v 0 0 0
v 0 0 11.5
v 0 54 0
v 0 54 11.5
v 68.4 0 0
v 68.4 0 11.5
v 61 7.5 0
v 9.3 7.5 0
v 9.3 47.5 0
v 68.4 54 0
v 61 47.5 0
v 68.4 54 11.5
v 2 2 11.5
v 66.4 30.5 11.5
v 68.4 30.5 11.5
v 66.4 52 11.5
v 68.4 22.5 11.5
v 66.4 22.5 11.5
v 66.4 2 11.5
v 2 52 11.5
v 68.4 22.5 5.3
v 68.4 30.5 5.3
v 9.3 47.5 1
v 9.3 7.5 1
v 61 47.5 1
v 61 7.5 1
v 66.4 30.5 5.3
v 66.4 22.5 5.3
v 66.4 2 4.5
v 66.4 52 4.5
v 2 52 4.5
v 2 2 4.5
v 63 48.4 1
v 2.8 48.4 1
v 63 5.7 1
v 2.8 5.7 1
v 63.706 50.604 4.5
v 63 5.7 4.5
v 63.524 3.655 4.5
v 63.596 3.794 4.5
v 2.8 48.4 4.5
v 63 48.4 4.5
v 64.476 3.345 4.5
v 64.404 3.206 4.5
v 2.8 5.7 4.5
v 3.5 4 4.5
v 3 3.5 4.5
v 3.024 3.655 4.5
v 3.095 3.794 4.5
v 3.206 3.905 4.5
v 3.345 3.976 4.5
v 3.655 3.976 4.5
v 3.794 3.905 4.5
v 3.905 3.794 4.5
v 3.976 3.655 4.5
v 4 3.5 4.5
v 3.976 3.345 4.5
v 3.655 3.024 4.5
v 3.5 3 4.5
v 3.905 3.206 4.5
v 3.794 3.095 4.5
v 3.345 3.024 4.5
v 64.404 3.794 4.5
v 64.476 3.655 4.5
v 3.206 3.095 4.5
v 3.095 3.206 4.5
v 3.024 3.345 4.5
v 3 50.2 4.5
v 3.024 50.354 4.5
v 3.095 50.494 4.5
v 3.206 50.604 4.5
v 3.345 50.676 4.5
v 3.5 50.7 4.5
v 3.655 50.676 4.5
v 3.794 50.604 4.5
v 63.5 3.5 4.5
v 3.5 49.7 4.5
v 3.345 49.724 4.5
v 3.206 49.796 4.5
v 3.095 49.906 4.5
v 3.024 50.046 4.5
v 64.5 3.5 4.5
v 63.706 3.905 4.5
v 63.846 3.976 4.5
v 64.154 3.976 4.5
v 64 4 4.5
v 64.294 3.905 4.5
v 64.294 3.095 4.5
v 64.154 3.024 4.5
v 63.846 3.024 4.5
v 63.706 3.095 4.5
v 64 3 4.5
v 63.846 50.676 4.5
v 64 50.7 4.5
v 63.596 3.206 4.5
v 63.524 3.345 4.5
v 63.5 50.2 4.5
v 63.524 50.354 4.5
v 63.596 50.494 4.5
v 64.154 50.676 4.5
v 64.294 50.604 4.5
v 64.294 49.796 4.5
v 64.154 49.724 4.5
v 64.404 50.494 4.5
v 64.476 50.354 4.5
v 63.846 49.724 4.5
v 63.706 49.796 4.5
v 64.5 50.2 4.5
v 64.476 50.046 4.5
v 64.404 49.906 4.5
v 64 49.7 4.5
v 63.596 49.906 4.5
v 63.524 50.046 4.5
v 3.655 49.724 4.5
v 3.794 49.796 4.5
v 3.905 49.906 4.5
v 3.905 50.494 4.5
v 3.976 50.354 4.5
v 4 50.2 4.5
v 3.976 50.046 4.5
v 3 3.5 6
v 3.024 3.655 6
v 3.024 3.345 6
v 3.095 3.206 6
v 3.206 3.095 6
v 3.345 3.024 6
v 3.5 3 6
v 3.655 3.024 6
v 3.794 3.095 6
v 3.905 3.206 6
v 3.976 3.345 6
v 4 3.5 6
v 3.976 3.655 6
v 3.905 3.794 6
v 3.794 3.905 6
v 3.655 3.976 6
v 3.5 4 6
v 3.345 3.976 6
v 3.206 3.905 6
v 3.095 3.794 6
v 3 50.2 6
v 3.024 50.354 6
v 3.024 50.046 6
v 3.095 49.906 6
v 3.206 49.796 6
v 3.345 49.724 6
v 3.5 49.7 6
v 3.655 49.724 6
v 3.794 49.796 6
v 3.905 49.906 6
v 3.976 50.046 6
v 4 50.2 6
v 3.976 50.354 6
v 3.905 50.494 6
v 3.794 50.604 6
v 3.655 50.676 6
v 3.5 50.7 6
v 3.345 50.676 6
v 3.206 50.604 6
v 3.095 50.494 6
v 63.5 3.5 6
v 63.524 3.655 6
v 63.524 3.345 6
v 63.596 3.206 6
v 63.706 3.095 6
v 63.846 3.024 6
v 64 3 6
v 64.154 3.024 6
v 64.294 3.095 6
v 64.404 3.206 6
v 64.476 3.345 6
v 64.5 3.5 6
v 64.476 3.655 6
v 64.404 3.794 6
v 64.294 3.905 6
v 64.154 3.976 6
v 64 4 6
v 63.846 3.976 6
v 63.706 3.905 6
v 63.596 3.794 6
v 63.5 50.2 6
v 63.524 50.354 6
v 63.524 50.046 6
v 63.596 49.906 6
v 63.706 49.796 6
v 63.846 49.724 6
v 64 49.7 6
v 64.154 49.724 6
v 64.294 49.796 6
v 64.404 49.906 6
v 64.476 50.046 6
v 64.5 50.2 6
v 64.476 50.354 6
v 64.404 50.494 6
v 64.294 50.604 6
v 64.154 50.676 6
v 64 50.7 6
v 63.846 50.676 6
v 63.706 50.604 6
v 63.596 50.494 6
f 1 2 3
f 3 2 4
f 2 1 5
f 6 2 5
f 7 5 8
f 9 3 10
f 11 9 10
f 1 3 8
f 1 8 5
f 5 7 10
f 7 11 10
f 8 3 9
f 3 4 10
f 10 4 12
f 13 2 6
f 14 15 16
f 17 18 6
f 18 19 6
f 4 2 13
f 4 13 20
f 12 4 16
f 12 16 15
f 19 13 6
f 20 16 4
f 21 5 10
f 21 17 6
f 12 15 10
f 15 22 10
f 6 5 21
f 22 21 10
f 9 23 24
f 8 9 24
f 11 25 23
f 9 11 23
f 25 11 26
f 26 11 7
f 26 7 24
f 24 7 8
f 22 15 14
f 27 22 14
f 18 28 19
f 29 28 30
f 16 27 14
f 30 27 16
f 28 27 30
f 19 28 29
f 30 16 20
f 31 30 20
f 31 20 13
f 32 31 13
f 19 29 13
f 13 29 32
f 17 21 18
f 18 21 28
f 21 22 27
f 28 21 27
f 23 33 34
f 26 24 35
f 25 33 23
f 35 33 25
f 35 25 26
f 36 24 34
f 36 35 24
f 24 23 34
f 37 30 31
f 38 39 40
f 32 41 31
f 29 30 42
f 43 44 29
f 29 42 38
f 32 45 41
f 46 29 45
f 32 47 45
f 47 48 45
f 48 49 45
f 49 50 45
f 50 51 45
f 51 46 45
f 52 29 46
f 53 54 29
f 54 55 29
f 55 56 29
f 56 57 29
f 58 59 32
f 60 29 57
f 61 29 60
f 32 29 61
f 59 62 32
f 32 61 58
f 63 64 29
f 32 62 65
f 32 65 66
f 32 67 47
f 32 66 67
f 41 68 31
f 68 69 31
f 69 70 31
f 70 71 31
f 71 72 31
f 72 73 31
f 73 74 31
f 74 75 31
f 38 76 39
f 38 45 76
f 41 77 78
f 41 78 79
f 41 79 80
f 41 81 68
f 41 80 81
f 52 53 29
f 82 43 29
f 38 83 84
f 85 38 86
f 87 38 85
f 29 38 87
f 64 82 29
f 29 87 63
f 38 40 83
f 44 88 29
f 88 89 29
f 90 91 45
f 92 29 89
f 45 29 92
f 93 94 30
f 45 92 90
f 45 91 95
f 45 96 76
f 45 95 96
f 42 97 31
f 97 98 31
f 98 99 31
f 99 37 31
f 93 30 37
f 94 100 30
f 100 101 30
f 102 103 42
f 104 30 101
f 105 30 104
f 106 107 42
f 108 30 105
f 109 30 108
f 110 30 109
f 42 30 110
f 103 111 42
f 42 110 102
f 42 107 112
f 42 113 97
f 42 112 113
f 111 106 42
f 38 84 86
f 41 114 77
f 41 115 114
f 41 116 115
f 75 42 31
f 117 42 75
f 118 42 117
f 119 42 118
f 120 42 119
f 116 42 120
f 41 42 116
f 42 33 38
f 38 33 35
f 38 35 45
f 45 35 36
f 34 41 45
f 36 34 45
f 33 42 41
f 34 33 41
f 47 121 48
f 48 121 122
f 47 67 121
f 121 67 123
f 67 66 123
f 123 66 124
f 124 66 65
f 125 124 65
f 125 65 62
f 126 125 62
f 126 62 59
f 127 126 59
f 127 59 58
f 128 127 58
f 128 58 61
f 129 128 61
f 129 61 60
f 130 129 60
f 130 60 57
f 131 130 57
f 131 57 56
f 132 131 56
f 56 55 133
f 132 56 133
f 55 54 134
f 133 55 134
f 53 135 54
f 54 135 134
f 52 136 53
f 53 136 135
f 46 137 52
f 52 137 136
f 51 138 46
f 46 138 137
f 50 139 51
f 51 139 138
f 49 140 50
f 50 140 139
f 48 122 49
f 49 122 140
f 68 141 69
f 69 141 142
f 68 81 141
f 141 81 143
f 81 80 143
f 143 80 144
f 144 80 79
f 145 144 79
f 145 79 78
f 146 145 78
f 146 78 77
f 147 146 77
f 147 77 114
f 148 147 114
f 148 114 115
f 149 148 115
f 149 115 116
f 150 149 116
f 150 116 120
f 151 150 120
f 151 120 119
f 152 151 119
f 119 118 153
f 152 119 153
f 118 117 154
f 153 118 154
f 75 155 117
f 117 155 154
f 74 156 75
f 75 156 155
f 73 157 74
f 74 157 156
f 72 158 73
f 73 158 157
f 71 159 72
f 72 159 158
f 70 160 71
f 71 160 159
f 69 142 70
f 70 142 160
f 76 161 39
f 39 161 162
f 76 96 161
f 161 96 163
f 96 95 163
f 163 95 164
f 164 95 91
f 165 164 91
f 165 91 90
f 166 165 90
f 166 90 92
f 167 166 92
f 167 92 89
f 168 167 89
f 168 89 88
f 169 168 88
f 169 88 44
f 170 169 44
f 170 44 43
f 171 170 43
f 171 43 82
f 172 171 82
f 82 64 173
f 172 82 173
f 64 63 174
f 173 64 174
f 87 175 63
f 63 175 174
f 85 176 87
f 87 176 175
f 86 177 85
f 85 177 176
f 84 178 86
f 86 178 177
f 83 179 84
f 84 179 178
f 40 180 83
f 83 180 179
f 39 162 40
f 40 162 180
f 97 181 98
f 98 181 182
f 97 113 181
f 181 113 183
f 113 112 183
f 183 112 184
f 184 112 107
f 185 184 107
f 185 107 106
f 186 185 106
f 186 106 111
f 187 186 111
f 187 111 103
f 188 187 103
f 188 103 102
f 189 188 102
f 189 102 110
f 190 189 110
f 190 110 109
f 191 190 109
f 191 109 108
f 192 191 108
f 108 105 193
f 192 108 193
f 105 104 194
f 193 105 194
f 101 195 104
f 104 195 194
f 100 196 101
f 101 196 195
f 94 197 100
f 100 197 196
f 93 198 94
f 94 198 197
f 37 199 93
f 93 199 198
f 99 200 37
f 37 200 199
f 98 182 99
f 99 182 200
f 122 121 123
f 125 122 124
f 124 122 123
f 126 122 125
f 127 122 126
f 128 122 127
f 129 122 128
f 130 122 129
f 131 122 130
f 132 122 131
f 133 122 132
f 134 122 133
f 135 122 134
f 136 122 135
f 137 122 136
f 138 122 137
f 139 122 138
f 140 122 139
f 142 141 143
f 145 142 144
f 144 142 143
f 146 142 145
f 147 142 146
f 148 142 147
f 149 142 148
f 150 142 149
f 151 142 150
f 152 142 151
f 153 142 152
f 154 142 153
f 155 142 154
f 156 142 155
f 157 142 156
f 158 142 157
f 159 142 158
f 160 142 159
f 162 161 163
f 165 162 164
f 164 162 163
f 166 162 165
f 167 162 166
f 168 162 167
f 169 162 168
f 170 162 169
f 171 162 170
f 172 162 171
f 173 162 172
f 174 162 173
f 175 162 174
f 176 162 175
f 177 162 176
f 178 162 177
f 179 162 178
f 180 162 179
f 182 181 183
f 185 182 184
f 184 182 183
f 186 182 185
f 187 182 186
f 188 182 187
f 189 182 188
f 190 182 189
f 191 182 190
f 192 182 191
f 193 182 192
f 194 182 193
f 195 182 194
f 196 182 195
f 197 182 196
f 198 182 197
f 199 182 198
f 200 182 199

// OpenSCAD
$fn=20;


module alles(){
	display = [64.4,50,9.5];  // Größte Aussenmaße
	cube(display+[4,4,2]);
}

module anzeige(){
	translate([9.3,7.5,0]) cube([51.7,40,20]);
	translate([2.8,5.7,1]) cube([60.2,42.7,20]);
}

module platine(){
	difference(){ //Bolzen zum Festhalten der Platine
		translate([2,2,4.5]) cube([64.4,50,20]);
		translate([3.5,3.5,4]) cylinder(h=2, r=0.5);
		translate([3.5,50.2,4]) cylinder(h=2, r=0.5);
		translate([64,3.5,4]) cylinder(h=2, r=0.5);
		translate([64,50.2,4]) cylinder(h=2, r=0.5);
	}
	translate([64.5,22.5,5.3]) cube([5,8,10]); //USB-Port
}


difference() {
	alles();
	anzeige();
	platine();
}
